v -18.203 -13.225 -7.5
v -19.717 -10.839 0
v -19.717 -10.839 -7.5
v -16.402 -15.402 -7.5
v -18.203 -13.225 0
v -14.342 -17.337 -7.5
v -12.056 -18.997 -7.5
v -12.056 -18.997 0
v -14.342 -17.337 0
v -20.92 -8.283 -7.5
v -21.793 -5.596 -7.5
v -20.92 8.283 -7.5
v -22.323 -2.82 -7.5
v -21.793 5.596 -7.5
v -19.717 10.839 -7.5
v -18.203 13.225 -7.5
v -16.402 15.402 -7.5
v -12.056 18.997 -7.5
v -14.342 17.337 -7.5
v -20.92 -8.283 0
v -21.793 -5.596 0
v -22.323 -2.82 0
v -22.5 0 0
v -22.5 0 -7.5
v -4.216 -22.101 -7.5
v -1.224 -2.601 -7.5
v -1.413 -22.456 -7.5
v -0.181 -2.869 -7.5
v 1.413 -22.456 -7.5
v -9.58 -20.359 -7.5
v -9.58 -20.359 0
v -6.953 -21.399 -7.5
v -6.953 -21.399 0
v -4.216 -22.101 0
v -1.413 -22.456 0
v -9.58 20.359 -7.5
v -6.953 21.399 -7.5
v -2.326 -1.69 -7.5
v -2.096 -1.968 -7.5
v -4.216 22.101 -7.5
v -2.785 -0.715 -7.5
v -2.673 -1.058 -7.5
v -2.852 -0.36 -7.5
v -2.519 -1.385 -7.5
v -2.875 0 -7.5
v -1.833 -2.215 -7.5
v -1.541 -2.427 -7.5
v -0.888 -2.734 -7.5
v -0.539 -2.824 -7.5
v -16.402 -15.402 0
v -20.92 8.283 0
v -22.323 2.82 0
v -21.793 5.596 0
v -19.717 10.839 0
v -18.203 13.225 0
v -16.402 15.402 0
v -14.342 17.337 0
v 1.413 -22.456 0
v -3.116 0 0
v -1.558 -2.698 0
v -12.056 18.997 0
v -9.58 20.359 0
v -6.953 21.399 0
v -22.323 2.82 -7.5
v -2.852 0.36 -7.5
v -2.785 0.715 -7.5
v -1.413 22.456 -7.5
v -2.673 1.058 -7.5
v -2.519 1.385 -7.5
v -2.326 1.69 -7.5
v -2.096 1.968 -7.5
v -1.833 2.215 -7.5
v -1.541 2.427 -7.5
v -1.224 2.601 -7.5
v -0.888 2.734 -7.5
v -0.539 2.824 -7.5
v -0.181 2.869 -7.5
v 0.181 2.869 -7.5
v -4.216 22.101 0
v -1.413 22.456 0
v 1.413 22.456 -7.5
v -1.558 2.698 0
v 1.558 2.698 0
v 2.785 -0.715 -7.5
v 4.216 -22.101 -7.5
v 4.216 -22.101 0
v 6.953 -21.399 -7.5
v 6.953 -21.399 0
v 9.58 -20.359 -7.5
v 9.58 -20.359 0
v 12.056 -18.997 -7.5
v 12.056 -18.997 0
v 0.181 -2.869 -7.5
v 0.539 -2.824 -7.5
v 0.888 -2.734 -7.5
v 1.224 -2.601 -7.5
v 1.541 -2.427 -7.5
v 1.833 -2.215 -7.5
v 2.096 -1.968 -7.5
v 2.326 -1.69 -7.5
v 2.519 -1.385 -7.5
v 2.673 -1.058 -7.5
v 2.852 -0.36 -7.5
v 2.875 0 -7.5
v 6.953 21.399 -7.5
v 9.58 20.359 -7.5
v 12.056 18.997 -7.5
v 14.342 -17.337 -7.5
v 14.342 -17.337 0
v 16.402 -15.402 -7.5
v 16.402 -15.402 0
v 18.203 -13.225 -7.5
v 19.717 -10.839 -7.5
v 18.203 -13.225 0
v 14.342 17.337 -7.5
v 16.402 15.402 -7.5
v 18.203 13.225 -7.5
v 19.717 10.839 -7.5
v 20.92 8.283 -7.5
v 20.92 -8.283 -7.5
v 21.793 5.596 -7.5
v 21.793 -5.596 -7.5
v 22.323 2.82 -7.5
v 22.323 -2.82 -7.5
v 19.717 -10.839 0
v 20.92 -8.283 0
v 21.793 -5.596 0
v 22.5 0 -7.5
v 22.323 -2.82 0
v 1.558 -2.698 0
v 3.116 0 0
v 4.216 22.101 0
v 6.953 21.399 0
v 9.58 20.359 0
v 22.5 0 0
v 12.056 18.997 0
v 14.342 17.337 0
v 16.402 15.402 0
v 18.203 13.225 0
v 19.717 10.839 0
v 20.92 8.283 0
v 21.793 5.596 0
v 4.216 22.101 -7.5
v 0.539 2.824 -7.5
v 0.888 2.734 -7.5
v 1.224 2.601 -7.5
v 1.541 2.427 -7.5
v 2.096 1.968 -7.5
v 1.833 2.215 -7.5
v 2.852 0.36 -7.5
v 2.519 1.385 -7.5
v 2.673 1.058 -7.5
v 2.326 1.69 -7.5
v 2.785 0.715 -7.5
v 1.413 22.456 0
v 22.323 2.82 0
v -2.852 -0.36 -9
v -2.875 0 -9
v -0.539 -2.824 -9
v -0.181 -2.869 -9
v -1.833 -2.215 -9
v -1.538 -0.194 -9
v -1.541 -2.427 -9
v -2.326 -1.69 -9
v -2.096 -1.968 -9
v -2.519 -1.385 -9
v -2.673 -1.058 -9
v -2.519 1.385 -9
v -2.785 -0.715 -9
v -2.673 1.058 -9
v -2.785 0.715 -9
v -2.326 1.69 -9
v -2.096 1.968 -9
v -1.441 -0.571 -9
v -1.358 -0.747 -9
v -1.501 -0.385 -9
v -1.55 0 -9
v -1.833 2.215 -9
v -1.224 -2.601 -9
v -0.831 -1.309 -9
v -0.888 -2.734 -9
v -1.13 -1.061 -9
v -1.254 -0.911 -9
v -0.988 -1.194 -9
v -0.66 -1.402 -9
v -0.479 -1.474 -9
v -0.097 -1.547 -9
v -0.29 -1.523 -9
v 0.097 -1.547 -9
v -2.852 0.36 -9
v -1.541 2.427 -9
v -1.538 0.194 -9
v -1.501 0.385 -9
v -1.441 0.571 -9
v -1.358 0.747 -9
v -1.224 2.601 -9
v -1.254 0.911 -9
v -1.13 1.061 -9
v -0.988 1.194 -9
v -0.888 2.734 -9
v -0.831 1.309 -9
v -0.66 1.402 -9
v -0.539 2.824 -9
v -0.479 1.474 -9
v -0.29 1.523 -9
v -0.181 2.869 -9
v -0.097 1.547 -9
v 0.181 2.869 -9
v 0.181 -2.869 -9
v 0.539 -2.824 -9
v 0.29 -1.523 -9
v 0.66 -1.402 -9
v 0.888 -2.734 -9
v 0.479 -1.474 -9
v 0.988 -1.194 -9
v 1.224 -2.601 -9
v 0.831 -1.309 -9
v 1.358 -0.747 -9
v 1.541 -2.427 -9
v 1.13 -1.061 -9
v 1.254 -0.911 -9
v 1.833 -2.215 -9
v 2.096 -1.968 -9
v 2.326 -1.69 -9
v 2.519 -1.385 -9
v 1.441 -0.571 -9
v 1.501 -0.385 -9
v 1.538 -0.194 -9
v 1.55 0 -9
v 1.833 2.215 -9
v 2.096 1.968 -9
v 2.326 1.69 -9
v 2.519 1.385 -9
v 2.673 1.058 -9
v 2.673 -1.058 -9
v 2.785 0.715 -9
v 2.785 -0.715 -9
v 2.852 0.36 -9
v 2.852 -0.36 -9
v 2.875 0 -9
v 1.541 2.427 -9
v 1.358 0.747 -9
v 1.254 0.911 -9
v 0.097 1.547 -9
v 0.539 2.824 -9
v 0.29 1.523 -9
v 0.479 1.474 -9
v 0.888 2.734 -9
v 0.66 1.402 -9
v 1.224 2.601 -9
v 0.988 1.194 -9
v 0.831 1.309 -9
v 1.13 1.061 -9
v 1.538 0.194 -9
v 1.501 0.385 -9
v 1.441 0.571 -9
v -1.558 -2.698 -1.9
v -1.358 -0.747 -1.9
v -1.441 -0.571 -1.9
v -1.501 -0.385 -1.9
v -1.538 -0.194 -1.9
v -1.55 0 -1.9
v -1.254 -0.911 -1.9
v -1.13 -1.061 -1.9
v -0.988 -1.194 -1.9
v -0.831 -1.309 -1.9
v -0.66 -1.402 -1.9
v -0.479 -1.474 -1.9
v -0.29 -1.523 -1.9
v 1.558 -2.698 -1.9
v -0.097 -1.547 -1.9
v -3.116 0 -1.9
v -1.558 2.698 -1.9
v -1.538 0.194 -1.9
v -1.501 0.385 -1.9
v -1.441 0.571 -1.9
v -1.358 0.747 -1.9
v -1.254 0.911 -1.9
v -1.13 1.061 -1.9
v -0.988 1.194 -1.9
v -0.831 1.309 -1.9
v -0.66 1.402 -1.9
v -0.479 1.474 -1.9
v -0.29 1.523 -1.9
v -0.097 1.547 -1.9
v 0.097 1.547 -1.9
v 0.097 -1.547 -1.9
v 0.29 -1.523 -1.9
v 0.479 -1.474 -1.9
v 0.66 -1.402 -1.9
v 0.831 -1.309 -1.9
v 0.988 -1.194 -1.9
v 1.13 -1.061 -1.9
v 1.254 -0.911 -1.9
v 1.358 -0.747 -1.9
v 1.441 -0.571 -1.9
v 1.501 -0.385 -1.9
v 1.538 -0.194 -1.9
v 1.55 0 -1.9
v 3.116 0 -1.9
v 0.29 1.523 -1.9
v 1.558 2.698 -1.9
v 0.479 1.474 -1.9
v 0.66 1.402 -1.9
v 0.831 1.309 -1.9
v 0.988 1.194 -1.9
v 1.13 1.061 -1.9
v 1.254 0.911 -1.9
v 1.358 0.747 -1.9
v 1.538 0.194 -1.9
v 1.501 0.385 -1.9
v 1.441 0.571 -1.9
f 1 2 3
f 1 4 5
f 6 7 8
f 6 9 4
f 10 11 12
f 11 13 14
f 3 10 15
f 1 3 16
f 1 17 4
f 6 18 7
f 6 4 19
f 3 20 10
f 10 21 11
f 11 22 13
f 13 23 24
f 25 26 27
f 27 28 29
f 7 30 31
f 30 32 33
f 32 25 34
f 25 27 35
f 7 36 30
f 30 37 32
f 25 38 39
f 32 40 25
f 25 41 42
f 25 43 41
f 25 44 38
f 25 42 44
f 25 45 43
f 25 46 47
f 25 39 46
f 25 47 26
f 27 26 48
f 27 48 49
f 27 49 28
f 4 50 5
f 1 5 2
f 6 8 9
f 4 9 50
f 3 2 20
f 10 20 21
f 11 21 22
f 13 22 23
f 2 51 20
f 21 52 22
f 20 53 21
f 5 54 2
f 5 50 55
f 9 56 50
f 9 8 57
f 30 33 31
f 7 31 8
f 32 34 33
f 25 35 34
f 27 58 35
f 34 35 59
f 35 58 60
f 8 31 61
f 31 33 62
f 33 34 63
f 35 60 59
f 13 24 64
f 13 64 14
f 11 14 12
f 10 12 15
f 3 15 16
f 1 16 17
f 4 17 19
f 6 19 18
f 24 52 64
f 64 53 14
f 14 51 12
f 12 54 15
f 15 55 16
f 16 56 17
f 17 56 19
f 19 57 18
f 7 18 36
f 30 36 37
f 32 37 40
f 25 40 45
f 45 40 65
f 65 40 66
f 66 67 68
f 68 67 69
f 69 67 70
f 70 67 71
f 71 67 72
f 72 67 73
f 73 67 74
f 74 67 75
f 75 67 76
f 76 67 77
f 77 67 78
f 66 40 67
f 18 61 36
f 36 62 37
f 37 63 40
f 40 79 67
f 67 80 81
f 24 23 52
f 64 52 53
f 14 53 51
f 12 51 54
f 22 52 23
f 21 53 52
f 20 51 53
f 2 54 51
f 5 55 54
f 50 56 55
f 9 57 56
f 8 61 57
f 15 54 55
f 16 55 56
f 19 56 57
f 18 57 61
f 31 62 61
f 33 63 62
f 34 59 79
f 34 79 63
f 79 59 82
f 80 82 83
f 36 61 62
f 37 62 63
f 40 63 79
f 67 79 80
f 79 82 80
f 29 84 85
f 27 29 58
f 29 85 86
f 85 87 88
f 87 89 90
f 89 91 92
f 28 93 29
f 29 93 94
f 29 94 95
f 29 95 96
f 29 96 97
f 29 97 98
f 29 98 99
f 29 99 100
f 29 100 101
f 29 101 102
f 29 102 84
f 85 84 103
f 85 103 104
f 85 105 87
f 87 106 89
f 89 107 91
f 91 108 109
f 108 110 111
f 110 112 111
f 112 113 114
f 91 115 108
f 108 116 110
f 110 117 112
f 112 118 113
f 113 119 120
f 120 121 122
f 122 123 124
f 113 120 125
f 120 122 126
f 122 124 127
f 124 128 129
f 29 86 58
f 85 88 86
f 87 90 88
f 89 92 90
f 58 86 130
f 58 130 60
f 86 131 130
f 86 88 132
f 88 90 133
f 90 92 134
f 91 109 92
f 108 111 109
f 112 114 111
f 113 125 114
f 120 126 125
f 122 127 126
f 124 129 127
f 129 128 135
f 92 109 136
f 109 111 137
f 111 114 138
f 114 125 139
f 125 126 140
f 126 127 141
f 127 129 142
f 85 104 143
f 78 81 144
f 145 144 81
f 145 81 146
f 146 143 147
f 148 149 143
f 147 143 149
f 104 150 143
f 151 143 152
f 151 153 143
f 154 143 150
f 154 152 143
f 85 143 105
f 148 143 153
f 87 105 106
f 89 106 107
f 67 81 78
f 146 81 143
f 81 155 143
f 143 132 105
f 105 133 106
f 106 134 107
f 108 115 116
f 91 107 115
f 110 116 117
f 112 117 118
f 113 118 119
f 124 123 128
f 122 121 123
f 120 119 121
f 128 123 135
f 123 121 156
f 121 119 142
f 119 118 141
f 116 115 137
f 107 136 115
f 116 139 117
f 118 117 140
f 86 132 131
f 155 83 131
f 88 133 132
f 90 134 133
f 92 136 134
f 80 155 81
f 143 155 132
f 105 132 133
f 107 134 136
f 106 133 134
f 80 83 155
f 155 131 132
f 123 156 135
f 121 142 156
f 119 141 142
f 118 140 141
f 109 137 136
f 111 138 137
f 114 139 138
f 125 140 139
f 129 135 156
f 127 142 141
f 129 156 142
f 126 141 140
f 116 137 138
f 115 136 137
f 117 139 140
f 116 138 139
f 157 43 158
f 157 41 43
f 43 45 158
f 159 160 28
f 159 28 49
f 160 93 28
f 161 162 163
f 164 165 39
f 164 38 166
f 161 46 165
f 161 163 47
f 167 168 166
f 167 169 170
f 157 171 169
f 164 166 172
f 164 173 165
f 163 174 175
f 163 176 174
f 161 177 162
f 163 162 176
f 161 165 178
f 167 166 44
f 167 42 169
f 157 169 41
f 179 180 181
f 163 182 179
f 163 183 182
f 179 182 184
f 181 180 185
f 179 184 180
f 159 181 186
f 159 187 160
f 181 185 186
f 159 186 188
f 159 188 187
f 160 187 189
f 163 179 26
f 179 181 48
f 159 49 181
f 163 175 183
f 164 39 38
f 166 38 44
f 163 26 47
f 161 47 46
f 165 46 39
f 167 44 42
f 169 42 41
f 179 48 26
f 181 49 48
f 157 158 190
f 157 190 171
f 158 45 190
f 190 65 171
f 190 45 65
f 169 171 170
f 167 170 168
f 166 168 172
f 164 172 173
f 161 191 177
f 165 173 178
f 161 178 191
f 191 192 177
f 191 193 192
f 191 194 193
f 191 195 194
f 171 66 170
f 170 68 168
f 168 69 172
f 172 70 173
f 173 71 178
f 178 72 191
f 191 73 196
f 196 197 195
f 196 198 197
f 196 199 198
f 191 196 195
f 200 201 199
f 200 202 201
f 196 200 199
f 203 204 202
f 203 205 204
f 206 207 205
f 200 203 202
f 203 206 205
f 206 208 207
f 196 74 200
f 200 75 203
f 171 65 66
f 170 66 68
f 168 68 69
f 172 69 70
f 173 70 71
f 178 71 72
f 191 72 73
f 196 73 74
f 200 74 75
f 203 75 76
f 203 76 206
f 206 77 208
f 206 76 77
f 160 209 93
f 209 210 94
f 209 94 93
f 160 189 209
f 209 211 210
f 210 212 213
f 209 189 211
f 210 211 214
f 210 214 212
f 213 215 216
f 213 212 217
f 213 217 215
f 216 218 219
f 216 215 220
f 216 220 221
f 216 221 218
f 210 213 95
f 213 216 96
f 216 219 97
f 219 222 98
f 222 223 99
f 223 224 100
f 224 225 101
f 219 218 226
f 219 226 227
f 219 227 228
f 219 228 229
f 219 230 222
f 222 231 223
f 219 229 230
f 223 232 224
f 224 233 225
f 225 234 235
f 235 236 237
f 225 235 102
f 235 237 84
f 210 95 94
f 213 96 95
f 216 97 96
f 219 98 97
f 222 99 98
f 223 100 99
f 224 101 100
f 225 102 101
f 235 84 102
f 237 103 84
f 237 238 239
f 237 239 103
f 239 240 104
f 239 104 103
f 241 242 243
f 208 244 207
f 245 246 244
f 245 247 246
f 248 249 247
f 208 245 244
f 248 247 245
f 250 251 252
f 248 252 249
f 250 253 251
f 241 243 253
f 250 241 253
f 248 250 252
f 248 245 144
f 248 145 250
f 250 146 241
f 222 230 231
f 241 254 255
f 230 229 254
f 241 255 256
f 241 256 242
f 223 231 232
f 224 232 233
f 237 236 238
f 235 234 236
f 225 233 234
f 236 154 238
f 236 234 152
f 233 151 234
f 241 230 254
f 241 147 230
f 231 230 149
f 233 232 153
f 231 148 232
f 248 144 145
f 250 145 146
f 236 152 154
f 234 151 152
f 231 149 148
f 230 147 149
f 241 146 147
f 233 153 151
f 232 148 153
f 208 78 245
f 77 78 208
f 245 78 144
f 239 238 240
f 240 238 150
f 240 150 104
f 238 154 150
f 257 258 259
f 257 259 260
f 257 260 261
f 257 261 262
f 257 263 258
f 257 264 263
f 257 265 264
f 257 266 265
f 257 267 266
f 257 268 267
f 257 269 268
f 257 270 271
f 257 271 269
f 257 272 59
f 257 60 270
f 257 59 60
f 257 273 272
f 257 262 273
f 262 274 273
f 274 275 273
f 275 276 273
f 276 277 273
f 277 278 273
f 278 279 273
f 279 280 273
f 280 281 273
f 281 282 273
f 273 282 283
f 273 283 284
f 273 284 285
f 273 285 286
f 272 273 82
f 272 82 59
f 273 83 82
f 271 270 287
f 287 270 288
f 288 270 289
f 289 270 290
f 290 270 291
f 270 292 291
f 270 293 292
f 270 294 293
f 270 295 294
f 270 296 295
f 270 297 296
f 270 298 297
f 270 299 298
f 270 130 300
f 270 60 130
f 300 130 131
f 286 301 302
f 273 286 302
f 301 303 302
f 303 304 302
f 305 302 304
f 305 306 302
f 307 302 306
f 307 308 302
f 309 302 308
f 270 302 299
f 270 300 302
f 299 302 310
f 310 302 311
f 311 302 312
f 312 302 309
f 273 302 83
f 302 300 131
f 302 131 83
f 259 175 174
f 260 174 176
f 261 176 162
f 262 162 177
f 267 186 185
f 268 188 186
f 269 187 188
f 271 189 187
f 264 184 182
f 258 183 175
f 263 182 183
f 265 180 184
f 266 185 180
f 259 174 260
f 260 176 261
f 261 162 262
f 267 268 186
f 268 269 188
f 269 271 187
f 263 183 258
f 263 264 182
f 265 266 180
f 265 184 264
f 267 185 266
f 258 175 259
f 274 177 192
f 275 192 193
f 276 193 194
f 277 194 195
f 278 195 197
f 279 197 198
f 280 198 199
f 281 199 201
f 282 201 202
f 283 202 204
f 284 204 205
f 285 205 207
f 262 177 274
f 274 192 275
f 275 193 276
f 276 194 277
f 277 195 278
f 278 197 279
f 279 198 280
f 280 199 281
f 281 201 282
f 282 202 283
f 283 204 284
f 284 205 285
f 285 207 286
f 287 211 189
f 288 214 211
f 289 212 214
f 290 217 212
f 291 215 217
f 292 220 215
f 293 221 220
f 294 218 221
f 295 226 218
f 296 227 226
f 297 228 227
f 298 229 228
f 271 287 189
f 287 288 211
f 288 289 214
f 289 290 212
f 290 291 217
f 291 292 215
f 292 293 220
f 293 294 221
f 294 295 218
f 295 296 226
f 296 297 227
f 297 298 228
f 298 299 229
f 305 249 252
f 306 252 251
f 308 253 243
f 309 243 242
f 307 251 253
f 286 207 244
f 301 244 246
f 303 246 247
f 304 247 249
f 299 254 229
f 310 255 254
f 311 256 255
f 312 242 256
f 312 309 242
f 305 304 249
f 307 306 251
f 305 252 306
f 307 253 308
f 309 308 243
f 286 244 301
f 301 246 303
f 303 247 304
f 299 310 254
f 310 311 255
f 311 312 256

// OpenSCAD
$fn = 50;

difference() {
	union() {
		translate(v = [0, 0, -7.5]) {
			cylinder(h = 7.5, r = 22.5);
		}
		#translate(v = [0, 0, -9.0]) {
			cylinder(h = 9, r = 2.875);
		}
	}
	union() {
		translate(v = [0, 0, 0]) {
			rotate(a = [0, 0, 0]) {
				difference() {
					union() {
						translate(v = [0, 0, -1.9]) {
							linear_extrude(height = 1.9) {
								polygon(points = [[3.1158, 0.0], [1.5579000000000005, 2.698361953111554], [-1.5578999999999994, 2.6983619531115544], [-3.1158, 3.815754496783323e-16], [-1.5579000000000014, -2.6983619531115535], [1.557899999999998, -2.6983619531115552]]);
							}
						}
					}
					union();
				}
			}
		}
		#translate(v = [0, 0, -100.0]) {
			cylinder(h = 200, r = 1.55);
		}
	}
}
